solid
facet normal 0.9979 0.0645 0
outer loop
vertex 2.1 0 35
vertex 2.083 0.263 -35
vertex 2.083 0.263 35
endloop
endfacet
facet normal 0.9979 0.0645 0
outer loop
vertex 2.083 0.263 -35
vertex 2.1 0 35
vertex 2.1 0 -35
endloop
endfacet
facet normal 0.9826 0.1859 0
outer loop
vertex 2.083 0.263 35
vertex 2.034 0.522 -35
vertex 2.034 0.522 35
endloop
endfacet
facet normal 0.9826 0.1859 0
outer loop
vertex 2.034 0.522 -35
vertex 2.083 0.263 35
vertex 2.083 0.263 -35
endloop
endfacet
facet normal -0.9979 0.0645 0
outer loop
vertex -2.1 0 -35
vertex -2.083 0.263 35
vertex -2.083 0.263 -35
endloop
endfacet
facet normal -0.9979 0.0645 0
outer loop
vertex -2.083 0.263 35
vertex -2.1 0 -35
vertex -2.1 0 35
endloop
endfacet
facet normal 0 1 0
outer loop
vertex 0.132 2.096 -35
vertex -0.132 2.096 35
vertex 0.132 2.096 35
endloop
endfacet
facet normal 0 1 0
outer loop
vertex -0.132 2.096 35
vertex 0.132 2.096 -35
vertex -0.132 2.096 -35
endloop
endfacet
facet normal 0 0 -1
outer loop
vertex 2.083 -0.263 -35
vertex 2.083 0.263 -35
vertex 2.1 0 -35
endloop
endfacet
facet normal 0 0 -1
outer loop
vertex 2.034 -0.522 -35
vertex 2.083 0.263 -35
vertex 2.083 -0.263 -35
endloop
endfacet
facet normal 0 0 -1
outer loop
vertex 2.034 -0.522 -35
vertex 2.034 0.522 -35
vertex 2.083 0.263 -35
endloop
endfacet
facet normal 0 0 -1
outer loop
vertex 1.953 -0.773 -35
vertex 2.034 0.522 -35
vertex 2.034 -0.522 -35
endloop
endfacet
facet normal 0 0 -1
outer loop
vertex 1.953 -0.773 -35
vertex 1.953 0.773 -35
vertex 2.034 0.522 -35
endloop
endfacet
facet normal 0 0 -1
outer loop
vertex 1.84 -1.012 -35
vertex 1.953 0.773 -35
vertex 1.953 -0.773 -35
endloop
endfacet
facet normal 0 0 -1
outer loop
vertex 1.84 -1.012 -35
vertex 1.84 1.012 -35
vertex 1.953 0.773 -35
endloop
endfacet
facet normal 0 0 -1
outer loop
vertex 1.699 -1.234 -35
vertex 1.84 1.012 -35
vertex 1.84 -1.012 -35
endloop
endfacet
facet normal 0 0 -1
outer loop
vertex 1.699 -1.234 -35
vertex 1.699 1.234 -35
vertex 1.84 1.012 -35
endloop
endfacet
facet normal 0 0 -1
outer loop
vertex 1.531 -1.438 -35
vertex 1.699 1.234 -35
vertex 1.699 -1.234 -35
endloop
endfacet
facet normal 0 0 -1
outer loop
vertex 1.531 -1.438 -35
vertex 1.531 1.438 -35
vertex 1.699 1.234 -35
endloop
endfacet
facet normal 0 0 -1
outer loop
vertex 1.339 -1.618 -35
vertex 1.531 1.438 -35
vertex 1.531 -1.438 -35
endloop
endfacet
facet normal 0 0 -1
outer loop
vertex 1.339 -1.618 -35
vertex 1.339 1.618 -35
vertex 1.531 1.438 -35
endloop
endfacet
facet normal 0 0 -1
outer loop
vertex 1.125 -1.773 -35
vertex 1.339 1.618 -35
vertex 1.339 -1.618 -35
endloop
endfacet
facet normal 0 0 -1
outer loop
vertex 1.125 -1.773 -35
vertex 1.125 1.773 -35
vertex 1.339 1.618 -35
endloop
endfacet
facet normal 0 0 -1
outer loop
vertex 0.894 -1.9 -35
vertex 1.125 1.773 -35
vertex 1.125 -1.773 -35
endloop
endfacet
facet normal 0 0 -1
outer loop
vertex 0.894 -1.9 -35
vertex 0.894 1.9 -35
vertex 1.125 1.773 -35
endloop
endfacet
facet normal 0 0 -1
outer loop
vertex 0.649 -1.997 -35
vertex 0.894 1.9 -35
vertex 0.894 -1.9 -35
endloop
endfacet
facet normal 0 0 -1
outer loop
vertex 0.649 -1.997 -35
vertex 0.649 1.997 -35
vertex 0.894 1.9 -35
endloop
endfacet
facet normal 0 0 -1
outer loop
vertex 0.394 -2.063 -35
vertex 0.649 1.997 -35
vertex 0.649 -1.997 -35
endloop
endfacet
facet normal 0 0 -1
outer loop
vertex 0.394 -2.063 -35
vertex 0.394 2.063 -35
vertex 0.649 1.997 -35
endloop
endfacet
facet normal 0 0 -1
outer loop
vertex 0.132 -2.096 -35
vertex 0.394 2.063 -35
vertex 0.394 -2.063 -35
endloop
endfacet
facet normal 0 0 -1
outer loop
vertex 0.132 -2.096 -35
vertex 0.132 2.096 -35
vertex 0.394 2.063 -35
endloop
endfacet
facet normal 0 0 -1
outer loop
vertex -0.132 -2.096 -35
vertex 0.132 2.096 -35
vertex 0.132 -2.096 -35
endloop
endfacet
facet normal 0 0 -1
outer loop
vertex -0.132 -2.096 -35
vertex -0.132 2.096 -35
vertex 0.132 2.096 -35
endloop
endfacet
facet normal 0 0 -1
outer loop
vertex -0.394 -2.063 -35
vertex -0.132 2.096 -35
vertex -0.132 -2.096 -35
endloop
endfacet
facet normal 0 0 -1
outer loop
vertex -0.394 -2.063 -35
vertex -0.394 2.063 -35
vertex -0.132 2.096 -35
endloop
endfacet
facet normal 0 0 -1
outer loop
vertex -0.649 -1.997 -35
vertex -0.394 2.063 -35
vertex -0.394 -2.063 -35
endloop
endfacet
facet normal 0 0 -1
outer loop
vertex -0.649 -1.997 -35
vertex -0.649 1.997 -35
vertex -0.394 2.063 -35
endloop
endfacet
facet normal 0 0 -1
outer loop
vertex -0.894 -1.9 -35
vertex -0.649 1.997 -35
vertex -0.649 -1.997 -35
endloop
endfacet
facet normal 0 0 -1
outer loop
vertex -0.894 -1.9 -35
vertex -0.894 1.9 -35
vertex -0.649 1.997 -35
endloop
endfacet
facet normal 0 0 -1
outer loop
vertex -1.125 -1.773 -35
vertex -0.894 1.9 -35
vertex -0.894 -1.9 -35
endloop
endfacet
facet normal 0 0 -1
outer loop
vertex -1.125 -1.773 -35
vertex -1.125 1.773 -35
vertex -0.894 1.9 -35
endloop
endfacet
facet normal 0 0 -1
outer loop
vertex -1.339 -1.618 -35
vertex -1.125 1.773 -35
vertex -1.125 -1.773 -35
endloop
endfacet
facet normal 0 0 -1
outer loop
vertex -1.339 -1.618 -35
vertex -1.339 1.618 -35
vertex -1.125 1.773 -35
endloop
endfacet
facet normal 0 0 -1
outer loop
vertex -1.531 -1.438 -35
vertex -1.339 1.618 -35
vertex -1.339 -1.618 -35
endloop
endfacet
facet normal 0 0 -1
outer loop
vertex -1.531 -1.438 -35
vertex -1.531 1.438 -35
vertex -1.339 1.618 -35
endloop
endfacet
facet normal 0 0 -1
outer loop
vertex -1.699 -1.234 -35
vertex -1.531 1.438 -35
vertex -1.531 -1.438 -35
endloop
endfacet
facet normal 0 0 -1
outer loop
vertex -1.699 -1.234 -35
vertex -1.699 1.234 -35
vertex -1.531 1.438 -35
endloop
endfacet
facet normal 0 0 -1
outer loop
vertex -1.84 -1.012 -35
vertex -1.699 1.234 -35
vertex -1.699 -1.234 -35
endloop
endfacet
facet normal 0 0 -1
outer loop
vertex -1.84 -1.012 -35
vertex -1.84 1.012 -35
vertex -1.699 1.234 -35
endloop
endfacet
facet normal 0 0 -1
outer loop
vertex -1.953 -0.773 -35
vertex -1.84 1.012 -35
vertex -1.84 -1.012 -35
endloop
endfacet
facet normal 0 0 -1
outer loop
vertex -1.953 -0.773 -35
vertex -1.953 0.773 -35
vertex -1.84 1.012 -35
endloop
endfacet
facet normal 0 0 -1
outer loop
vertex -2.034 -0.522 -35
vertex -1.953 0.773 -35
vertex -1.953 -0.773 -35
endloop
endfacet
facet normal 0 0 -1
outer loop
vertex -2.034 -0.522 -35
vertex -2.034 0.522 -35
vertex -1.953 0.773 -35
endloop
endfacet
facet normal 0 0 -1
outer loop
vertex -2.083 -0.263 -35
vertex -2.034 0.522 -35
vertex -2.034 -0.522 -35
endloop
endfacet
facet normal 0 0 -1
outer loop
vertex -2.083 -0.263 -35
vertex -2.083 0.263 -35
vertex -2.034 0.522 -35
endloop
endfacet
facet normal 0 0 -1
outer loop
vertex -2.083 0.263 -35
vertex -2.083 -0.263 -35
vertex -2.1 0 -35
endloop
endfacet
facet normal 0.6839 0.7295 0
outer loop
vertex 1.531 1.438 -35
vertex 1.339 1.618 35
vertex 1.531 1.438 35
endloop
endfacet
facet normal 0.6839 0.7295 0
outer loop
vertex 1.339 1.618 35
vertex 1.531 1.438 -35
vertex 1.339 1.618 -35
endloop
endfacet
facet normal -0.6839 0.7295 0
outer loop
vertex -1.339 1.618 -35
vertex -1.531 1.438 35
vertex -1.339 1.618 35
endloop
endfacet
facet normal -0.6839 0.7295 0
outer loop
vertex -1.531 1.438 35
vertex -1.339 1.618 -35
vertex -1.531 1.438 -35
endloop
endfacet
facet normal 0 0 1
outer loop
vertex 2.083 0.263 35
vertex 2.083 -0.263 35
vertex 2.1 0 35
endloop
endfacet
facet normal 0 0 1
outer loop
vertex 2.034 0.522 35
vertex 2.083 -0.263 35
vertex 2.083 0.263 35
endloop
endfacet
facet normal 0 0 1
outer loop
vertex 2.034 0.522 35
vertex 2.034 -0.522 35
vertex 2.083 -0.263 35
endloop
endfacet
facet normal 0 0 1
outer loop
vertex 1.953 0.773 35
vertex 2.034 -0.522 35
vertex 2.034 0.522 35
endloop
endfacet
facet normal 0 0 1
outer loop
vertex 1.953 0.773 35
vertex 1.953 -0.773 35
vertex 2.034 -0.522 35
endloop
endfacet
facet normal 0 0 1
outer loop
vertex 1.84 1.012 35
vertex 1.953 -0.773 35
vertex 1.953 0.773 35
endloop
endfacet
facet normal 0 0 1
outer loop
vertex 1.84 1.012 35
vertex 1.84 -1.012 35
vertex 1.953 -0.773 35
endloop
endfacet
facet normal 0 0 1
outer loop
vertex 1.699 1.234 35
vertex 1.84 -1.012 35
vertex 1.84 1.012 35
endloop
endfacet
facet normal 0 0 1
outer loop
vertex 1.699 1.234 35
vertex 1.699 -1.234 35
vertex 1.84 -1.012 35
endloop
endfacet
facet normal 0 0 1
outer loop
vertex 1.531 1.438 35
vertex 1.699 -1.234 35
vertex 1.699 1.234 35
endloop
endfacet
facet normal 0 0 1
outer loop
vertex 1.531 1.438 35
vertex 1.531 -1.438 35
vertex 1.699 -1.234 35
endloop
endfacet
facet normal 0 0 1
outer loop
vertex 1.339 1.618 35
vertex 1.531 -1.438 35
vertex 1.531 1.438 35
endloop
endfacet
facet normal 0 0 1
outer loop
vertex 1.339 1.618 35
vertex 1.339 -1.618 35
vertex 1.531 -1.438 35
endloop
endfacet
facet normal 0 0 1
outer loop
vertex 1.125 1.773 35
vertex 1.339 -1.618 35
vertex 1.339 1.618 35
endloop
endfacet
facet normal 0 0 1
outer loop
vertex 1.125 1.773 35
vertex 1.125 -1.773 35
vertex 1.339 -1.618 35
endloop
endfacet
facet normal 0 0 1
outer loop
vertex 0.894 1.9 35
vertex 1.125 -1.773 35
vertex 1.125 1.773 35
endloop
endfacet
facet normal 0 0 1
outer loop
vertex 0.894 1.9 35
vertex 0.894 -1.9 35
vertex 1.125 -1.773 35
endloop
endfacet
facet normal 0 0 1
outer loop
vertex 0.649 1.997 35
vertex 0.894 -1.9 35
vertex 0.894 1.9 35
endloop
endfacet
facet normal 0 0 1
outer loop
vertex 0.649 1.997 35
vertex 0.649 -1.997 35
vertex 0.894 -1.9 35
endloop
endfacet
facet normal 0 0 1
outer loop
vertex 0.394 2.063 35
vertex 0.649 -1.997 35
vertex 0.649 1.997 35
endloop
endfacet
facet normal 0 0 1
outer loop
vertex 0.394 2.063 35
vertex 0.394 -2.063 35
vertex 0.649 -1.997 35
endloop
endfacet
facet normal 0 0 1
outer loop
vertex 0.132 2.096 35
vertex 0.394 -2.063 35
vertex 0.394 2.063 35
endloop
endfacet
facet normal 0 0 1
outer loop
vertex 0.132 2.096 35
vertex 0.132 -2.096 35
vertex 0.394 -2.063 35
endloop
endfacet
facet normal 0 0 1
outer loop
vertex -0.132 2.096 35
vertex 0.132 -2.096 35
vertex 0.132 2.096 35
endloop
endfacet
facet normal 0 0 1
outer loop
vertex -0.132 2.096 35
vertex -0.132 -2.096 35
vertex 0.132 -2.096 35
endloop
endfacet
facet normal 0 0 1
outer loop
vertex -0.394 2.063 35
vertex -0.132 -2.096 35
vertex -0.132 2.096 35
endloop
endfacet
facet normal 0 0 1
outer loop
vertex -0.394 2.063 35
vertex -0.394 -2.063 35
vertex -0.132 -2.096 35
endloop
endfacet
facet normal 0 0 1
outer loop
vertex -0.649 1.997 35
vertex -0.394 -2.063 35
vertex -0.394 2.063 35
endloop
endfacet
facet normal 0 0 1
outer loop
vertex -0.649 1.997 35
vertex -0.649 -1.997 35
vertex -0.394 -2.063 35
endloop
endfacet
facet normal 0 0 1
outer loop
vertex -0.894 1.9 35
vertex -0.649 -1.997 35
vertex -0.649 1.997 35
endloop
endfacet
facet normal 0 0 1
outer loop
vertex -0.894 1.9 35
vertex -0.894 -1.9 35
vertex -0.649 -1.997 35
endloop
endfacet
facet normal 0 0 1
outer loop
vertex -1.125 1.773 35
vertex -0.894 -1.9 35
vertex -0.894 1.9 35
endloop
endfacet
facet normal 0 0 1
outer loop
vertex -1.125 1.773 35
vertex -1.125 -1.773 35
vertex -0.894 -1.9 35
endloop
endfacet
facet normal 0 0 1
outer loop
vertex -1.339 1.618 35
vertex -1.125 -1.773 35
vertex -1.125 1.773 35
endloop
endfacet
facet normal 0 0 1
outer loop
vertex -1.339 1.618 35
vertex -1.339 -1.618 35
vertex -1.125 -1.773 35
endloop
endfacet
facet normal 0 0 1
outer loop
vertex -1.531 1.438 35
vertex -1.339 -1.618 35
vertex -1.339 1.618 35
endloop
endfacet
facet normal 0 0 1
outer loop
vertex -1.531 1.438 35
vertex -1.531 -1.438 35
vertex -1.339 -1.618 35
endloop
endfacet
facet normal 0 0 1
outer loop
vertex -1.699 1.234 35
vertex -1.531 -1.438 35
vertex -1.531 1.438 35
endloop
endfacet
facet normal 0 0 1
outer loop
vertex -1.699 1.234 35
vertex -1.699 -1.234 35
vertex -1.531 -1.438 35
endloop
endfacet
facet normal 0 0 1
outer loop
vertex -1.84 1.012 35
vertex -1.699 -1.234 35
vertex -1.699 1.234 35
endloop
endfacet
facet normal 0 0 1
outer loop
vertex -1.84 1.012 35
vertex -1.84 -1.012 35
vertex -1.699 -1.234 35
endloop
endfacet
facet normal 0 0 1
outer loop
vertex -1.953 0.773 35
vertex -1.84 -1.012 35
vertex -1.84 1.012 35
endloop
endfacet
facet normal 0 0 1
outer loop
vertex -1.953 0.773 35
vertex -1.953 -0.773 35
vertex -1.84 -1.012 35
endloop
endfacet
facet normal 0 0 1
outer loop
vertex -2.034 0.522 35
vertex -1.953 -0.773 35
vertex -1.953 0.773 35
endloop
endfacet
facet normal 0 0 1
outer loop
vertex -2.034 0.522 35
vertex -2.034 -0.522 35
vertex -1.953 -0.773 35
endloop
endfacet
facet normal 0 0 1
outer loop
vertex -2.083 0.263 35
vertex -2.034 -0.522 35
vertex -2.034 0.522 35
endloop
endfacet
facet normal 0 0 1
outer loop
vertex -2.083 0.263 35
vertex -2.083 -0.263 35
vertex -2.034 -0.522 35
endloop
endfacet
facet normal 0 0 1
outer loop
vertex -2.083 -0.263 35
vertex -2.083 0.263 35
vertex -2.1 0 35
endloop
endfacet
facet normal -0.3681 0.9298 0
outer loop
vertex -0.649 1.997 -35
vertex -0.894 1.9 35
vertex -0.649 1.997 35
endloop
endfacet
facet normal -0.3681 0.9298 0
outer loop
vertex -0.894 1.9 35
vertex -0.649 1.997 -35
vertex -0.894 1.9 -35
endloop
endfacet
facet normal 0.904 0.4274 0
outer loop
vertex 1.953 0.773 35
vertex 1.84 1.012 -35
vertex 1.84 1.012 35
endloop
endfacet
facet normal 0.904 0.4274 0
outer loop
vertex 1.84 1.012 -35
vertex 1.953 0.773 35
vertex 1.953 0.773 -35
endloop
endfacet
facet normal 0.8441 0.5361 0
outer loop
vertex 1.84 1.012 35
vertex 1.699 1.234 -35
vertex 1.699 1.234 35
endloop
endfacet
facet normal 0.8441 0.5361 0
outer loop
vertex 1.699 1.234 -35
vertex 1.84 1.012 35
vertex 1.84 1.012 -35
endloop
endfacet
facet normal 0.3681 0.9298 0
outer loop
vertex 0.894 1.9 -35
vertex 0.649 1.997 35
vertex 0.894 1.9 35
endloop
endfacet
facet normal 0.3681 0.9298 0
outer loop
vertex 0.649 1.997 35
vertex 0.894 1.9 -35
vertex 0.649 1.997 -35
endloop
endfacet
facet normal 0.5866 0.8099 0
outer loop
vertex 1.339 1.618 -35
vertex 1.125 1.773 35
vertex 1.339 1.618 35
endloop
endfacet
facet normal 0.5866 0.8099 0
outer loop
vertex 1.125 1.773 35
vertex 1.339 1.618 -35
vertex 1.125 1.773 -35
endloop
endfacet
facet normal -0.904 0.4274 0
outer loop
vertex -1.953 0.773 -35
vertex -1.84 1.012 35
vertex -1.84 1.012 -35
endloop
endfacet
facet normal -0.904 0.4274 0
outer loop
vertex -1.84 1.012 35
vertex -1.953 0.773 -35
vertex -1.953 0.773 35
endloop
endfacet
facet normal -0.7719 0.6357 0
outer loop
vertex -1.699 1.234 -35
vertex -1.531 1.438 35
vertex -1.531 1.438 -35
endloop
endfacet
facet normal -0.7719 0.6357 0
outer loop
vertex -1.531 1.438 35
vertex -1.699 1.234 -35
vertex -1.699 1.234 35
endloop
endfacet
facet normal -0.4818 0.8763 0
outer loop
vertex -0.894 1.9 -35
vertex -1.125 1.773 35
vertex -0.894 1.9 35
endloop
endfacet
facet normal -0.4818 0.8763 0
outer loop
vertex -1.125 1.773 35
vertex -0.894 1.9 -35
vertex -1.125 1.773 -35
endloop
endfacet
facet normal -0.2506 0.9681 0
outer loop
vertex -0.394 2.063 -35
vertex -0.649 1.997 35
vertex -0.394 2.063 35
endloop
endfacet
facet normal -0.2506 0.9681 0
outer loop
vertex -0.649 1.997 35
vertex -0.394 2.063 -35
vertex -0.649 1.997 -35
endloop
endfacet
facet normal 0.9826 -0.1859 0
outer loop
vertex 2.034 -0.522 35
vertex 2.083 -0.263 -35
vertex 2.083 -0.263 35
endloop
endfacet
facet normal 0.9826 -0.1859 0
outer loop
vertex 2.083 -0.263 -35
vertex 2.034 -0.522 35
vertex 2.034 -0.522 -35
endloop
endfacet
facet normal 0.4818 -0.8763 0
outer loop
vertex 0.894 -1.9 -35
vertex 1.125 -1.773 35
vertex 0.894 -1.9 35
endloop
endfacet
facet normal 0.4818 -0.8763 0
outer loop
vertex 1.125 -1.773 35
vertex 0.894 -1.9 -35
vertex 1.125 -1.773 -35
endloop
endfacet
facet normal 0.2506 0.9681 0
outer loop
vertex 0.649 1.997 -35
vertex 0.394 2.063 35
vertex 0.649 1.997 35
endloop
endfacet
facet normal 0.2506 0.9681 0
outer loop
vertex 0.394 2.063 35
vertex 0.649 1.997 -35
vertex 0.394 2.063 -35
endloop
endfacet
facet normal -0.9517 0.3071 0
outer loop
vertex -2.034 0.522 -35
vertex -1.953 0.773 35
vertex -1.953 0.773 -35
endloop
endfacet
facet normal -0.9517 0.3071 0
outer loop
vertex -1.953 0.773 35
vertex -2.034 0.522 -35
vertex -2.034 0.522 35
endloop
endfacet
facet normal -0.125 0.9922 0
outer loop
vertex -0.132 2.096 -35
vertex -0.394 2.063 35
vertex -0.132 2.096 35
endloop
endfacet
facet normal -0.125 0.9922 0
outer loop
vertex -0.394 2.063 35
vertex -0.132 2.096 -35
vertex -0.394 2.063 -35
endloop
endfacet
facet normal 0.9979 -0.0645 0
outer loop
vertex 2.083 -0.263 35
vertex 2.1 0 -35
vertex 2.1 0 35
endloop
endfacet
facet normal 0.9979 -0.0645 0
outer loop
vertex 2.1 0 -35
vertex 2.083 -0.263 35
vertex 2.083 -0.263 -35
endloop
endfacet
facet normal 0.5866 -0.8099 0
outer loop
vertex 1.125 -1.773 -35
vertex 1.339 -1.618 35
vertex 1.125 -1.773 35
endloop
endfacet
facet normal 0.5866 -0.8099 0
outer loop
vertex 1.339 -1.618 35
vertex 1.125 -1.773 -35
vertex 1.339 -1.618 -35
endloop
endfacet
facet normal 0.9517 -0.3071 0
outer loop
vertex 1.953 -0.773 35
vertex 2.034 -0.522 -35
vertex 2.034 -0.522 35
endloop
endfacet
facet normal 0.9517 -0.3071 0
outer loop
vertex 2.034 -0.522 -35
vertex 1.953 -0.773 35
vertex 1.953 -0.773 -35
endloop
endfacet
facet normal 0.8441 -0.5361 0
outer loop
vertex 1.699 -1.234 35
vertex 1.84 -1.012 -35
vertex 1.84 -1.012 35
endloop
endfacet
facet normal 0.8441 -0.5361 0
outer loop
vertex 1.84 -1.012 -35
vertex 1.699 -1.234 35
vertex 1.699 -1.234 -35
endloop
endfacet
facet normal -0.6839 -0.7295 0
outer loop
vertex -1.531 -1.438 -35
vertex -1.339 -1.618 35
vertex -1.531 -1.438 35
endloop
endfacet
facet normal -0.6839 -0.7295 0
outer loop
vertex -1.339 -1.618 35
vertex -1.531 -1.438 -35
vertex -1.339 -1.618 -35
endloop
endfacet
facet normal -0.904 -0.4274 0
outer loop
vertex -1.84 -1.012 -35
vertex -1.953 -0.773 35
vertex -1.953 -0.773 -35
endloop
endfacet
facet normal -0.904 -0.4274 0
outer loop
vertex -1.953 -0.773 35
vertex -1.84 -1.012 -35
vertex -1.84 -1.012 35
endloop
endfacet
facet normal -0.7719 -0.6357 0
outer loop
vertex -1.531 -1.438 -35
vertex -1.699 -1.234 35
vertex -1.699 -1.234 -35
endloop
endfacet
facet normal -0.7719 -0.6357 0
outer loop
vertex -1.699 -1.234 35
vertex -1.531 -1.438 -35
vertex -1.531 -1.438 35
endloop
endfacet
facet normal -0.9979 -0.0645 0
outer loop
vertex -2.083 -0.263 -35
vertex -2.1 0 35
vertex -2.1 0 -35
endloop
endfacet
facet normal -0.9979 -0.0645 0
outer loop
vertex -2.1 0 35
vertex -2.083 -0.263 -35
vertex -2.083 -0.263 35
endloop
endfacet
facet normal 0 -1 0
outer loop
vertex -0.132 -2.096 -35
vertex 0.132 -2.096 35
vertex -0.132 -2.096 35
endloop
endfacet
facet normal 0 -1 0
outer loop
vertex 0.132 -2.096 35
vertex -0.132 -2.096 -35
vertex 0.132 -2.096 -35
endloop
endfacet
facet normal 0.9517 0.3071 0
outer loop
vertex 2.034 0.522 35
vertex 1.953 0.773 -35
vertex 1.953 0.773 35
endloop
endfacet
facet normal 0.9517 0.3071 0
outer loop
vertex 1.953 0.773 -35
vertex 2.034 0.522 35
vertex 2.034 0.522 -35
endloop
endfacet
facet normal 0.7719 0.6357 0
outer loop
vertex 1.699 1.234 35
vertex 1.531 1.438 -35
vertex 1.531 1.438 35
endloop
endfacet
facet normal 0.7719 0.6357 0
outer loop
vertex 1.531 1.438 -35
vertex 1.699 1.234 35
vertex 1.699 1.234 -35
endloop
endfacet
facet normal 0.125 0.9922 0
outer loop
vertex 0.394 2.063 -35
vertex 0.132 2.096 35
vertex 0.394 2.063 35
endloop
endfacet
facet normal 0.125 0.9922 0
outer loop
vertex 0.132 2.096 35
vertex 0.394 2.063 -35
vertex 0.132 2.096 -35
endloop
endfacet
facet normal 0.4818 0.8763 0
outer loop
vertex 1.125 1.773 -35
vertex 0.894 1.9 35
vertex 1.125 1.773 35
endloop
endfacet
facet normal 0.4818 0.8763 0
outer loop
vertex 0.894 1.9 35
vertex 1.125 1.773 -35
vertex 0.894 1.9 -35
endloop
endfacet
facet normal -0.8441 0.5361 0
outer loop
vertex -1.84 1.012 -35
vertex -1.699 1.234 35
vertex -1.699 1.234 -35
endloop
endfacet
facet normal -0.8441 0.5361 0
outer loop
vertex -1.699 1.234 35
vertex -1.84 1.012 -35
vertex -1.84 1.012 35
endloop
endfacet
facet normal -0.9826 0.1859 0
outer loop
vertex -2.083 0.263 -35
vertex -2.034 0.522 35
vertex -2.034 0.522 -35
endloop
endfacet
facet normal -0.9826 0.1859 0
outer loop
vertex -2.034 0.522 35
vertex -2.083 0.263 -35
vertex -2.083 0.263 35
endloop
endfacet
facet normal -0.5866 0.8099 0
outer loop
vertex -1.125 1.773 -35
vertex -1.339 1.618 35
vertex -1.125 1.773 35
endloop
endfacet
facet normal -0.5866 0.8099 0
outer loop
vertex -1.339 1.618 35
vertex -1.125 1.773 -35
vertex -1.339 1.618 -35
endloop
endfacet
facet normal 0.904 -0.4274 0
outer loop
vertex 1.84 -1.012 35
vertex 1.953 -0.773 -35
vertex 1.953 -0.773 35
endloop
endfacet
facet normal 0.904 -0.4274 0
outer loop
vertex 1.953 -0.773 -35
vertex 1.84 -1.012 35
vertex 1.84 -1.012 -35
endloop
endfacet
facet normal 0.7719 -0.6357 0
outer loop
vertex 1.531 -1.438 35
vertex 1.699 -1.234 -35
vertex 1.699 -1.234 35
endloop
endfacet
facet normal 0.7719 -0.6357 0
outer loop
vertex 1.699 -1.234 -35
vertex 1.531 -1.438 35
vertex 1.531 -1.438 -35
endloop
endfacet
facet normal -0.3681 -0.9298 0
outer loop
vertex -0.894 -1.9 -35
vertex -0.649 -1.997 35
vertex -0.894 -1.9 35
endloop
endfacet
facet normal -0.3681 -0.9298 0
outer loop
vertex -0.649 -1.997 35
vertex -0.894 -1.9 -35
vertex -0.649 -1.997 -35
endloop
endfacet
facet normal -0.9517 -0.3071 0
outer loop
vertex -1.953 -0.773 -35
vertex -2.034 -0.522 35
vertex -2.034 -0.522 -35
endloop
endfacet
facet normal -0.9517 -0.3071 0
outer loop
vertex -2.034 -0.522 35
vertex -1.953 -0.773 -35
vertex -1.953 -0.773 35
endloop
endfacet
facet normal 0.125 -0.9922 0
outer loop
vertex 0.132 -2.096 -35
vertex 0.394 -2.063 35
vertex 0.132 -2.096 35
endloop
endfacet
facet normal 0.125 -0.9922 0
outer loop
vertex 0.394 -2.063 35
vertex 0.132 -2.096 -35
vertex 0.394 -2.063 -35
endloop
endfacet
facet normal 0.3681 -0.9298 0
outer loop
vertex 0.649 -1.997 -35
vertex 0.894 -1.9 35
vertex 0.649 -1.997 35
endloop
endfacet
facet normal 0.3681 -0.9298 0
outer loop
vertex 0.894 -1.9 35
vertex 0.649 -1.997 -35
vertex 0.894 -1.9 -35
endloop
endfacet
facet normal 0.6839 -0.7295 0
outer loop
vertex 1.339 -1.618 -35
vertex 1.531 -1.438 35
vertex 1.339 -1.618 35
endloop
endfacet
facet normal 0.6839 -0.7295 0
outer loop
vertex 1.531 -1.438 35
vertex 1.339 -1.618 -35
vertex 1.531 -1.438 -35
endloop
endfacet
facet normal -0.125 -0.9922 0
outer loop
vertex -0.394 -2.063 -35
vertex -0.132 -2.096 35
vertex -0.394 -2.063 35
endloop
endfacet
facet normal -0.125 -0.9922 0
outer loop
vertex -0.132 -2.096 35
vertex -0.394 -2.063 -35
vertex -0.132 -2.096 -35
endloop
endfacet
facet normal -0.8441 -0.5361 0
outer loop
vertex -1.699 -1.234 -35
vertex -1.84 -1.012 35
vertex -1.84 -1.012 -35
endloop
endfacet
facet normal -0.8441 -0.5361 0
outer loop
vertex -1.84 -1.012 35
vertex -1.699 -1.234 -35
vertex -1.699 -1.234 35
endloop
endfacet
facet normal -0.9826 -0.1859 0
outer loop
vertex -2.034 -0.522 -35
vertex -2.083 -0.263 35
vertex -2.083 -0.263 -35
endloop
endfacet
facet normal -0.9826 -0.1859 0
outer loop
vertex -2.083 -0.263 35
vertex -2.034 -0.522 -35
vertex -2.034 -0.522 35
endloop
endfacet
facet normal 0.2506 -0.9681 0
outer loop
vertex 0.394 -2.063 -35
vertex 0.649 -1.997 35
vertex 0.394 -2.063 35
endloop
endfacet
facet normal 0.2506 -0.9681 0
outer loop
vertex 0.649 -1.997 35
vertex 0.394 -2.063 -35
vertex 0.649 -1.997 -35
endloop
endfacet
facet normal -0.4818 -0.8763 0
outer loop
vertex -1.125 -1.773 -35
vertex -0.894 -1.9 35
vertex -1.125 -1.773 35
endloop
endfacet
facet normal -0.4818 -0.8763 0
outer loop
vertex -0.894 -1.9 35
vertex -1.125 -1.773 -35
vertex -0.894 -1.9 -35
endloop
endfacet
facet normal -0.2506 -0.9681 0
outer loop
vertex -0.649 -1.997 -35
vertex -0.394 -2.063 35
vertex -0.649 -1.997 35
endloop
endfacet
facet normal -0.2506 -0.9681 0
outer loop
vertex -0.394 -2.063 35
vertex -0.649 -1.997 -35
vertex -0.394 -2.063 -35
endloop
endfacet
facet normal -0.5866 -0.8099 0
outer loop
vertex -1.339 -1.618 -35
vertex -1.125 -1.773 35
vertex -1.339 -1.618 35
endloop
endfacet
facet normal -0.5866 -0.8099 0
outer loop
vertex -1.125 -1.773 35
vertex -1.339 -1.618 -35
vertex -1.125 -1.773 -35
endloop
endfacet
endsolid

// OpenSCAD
$fn = 50;


difference() {
	union() {
		translate(v = [0, 0, -35.0000000000]) {
			cylinder(h = 70, r = 2.1000000000);
		}
	}
	union() {
		translate(v = [0, 0, -100.0000000000]) {
			cylinder(h = 200, r = 0);
		}
	}
}
